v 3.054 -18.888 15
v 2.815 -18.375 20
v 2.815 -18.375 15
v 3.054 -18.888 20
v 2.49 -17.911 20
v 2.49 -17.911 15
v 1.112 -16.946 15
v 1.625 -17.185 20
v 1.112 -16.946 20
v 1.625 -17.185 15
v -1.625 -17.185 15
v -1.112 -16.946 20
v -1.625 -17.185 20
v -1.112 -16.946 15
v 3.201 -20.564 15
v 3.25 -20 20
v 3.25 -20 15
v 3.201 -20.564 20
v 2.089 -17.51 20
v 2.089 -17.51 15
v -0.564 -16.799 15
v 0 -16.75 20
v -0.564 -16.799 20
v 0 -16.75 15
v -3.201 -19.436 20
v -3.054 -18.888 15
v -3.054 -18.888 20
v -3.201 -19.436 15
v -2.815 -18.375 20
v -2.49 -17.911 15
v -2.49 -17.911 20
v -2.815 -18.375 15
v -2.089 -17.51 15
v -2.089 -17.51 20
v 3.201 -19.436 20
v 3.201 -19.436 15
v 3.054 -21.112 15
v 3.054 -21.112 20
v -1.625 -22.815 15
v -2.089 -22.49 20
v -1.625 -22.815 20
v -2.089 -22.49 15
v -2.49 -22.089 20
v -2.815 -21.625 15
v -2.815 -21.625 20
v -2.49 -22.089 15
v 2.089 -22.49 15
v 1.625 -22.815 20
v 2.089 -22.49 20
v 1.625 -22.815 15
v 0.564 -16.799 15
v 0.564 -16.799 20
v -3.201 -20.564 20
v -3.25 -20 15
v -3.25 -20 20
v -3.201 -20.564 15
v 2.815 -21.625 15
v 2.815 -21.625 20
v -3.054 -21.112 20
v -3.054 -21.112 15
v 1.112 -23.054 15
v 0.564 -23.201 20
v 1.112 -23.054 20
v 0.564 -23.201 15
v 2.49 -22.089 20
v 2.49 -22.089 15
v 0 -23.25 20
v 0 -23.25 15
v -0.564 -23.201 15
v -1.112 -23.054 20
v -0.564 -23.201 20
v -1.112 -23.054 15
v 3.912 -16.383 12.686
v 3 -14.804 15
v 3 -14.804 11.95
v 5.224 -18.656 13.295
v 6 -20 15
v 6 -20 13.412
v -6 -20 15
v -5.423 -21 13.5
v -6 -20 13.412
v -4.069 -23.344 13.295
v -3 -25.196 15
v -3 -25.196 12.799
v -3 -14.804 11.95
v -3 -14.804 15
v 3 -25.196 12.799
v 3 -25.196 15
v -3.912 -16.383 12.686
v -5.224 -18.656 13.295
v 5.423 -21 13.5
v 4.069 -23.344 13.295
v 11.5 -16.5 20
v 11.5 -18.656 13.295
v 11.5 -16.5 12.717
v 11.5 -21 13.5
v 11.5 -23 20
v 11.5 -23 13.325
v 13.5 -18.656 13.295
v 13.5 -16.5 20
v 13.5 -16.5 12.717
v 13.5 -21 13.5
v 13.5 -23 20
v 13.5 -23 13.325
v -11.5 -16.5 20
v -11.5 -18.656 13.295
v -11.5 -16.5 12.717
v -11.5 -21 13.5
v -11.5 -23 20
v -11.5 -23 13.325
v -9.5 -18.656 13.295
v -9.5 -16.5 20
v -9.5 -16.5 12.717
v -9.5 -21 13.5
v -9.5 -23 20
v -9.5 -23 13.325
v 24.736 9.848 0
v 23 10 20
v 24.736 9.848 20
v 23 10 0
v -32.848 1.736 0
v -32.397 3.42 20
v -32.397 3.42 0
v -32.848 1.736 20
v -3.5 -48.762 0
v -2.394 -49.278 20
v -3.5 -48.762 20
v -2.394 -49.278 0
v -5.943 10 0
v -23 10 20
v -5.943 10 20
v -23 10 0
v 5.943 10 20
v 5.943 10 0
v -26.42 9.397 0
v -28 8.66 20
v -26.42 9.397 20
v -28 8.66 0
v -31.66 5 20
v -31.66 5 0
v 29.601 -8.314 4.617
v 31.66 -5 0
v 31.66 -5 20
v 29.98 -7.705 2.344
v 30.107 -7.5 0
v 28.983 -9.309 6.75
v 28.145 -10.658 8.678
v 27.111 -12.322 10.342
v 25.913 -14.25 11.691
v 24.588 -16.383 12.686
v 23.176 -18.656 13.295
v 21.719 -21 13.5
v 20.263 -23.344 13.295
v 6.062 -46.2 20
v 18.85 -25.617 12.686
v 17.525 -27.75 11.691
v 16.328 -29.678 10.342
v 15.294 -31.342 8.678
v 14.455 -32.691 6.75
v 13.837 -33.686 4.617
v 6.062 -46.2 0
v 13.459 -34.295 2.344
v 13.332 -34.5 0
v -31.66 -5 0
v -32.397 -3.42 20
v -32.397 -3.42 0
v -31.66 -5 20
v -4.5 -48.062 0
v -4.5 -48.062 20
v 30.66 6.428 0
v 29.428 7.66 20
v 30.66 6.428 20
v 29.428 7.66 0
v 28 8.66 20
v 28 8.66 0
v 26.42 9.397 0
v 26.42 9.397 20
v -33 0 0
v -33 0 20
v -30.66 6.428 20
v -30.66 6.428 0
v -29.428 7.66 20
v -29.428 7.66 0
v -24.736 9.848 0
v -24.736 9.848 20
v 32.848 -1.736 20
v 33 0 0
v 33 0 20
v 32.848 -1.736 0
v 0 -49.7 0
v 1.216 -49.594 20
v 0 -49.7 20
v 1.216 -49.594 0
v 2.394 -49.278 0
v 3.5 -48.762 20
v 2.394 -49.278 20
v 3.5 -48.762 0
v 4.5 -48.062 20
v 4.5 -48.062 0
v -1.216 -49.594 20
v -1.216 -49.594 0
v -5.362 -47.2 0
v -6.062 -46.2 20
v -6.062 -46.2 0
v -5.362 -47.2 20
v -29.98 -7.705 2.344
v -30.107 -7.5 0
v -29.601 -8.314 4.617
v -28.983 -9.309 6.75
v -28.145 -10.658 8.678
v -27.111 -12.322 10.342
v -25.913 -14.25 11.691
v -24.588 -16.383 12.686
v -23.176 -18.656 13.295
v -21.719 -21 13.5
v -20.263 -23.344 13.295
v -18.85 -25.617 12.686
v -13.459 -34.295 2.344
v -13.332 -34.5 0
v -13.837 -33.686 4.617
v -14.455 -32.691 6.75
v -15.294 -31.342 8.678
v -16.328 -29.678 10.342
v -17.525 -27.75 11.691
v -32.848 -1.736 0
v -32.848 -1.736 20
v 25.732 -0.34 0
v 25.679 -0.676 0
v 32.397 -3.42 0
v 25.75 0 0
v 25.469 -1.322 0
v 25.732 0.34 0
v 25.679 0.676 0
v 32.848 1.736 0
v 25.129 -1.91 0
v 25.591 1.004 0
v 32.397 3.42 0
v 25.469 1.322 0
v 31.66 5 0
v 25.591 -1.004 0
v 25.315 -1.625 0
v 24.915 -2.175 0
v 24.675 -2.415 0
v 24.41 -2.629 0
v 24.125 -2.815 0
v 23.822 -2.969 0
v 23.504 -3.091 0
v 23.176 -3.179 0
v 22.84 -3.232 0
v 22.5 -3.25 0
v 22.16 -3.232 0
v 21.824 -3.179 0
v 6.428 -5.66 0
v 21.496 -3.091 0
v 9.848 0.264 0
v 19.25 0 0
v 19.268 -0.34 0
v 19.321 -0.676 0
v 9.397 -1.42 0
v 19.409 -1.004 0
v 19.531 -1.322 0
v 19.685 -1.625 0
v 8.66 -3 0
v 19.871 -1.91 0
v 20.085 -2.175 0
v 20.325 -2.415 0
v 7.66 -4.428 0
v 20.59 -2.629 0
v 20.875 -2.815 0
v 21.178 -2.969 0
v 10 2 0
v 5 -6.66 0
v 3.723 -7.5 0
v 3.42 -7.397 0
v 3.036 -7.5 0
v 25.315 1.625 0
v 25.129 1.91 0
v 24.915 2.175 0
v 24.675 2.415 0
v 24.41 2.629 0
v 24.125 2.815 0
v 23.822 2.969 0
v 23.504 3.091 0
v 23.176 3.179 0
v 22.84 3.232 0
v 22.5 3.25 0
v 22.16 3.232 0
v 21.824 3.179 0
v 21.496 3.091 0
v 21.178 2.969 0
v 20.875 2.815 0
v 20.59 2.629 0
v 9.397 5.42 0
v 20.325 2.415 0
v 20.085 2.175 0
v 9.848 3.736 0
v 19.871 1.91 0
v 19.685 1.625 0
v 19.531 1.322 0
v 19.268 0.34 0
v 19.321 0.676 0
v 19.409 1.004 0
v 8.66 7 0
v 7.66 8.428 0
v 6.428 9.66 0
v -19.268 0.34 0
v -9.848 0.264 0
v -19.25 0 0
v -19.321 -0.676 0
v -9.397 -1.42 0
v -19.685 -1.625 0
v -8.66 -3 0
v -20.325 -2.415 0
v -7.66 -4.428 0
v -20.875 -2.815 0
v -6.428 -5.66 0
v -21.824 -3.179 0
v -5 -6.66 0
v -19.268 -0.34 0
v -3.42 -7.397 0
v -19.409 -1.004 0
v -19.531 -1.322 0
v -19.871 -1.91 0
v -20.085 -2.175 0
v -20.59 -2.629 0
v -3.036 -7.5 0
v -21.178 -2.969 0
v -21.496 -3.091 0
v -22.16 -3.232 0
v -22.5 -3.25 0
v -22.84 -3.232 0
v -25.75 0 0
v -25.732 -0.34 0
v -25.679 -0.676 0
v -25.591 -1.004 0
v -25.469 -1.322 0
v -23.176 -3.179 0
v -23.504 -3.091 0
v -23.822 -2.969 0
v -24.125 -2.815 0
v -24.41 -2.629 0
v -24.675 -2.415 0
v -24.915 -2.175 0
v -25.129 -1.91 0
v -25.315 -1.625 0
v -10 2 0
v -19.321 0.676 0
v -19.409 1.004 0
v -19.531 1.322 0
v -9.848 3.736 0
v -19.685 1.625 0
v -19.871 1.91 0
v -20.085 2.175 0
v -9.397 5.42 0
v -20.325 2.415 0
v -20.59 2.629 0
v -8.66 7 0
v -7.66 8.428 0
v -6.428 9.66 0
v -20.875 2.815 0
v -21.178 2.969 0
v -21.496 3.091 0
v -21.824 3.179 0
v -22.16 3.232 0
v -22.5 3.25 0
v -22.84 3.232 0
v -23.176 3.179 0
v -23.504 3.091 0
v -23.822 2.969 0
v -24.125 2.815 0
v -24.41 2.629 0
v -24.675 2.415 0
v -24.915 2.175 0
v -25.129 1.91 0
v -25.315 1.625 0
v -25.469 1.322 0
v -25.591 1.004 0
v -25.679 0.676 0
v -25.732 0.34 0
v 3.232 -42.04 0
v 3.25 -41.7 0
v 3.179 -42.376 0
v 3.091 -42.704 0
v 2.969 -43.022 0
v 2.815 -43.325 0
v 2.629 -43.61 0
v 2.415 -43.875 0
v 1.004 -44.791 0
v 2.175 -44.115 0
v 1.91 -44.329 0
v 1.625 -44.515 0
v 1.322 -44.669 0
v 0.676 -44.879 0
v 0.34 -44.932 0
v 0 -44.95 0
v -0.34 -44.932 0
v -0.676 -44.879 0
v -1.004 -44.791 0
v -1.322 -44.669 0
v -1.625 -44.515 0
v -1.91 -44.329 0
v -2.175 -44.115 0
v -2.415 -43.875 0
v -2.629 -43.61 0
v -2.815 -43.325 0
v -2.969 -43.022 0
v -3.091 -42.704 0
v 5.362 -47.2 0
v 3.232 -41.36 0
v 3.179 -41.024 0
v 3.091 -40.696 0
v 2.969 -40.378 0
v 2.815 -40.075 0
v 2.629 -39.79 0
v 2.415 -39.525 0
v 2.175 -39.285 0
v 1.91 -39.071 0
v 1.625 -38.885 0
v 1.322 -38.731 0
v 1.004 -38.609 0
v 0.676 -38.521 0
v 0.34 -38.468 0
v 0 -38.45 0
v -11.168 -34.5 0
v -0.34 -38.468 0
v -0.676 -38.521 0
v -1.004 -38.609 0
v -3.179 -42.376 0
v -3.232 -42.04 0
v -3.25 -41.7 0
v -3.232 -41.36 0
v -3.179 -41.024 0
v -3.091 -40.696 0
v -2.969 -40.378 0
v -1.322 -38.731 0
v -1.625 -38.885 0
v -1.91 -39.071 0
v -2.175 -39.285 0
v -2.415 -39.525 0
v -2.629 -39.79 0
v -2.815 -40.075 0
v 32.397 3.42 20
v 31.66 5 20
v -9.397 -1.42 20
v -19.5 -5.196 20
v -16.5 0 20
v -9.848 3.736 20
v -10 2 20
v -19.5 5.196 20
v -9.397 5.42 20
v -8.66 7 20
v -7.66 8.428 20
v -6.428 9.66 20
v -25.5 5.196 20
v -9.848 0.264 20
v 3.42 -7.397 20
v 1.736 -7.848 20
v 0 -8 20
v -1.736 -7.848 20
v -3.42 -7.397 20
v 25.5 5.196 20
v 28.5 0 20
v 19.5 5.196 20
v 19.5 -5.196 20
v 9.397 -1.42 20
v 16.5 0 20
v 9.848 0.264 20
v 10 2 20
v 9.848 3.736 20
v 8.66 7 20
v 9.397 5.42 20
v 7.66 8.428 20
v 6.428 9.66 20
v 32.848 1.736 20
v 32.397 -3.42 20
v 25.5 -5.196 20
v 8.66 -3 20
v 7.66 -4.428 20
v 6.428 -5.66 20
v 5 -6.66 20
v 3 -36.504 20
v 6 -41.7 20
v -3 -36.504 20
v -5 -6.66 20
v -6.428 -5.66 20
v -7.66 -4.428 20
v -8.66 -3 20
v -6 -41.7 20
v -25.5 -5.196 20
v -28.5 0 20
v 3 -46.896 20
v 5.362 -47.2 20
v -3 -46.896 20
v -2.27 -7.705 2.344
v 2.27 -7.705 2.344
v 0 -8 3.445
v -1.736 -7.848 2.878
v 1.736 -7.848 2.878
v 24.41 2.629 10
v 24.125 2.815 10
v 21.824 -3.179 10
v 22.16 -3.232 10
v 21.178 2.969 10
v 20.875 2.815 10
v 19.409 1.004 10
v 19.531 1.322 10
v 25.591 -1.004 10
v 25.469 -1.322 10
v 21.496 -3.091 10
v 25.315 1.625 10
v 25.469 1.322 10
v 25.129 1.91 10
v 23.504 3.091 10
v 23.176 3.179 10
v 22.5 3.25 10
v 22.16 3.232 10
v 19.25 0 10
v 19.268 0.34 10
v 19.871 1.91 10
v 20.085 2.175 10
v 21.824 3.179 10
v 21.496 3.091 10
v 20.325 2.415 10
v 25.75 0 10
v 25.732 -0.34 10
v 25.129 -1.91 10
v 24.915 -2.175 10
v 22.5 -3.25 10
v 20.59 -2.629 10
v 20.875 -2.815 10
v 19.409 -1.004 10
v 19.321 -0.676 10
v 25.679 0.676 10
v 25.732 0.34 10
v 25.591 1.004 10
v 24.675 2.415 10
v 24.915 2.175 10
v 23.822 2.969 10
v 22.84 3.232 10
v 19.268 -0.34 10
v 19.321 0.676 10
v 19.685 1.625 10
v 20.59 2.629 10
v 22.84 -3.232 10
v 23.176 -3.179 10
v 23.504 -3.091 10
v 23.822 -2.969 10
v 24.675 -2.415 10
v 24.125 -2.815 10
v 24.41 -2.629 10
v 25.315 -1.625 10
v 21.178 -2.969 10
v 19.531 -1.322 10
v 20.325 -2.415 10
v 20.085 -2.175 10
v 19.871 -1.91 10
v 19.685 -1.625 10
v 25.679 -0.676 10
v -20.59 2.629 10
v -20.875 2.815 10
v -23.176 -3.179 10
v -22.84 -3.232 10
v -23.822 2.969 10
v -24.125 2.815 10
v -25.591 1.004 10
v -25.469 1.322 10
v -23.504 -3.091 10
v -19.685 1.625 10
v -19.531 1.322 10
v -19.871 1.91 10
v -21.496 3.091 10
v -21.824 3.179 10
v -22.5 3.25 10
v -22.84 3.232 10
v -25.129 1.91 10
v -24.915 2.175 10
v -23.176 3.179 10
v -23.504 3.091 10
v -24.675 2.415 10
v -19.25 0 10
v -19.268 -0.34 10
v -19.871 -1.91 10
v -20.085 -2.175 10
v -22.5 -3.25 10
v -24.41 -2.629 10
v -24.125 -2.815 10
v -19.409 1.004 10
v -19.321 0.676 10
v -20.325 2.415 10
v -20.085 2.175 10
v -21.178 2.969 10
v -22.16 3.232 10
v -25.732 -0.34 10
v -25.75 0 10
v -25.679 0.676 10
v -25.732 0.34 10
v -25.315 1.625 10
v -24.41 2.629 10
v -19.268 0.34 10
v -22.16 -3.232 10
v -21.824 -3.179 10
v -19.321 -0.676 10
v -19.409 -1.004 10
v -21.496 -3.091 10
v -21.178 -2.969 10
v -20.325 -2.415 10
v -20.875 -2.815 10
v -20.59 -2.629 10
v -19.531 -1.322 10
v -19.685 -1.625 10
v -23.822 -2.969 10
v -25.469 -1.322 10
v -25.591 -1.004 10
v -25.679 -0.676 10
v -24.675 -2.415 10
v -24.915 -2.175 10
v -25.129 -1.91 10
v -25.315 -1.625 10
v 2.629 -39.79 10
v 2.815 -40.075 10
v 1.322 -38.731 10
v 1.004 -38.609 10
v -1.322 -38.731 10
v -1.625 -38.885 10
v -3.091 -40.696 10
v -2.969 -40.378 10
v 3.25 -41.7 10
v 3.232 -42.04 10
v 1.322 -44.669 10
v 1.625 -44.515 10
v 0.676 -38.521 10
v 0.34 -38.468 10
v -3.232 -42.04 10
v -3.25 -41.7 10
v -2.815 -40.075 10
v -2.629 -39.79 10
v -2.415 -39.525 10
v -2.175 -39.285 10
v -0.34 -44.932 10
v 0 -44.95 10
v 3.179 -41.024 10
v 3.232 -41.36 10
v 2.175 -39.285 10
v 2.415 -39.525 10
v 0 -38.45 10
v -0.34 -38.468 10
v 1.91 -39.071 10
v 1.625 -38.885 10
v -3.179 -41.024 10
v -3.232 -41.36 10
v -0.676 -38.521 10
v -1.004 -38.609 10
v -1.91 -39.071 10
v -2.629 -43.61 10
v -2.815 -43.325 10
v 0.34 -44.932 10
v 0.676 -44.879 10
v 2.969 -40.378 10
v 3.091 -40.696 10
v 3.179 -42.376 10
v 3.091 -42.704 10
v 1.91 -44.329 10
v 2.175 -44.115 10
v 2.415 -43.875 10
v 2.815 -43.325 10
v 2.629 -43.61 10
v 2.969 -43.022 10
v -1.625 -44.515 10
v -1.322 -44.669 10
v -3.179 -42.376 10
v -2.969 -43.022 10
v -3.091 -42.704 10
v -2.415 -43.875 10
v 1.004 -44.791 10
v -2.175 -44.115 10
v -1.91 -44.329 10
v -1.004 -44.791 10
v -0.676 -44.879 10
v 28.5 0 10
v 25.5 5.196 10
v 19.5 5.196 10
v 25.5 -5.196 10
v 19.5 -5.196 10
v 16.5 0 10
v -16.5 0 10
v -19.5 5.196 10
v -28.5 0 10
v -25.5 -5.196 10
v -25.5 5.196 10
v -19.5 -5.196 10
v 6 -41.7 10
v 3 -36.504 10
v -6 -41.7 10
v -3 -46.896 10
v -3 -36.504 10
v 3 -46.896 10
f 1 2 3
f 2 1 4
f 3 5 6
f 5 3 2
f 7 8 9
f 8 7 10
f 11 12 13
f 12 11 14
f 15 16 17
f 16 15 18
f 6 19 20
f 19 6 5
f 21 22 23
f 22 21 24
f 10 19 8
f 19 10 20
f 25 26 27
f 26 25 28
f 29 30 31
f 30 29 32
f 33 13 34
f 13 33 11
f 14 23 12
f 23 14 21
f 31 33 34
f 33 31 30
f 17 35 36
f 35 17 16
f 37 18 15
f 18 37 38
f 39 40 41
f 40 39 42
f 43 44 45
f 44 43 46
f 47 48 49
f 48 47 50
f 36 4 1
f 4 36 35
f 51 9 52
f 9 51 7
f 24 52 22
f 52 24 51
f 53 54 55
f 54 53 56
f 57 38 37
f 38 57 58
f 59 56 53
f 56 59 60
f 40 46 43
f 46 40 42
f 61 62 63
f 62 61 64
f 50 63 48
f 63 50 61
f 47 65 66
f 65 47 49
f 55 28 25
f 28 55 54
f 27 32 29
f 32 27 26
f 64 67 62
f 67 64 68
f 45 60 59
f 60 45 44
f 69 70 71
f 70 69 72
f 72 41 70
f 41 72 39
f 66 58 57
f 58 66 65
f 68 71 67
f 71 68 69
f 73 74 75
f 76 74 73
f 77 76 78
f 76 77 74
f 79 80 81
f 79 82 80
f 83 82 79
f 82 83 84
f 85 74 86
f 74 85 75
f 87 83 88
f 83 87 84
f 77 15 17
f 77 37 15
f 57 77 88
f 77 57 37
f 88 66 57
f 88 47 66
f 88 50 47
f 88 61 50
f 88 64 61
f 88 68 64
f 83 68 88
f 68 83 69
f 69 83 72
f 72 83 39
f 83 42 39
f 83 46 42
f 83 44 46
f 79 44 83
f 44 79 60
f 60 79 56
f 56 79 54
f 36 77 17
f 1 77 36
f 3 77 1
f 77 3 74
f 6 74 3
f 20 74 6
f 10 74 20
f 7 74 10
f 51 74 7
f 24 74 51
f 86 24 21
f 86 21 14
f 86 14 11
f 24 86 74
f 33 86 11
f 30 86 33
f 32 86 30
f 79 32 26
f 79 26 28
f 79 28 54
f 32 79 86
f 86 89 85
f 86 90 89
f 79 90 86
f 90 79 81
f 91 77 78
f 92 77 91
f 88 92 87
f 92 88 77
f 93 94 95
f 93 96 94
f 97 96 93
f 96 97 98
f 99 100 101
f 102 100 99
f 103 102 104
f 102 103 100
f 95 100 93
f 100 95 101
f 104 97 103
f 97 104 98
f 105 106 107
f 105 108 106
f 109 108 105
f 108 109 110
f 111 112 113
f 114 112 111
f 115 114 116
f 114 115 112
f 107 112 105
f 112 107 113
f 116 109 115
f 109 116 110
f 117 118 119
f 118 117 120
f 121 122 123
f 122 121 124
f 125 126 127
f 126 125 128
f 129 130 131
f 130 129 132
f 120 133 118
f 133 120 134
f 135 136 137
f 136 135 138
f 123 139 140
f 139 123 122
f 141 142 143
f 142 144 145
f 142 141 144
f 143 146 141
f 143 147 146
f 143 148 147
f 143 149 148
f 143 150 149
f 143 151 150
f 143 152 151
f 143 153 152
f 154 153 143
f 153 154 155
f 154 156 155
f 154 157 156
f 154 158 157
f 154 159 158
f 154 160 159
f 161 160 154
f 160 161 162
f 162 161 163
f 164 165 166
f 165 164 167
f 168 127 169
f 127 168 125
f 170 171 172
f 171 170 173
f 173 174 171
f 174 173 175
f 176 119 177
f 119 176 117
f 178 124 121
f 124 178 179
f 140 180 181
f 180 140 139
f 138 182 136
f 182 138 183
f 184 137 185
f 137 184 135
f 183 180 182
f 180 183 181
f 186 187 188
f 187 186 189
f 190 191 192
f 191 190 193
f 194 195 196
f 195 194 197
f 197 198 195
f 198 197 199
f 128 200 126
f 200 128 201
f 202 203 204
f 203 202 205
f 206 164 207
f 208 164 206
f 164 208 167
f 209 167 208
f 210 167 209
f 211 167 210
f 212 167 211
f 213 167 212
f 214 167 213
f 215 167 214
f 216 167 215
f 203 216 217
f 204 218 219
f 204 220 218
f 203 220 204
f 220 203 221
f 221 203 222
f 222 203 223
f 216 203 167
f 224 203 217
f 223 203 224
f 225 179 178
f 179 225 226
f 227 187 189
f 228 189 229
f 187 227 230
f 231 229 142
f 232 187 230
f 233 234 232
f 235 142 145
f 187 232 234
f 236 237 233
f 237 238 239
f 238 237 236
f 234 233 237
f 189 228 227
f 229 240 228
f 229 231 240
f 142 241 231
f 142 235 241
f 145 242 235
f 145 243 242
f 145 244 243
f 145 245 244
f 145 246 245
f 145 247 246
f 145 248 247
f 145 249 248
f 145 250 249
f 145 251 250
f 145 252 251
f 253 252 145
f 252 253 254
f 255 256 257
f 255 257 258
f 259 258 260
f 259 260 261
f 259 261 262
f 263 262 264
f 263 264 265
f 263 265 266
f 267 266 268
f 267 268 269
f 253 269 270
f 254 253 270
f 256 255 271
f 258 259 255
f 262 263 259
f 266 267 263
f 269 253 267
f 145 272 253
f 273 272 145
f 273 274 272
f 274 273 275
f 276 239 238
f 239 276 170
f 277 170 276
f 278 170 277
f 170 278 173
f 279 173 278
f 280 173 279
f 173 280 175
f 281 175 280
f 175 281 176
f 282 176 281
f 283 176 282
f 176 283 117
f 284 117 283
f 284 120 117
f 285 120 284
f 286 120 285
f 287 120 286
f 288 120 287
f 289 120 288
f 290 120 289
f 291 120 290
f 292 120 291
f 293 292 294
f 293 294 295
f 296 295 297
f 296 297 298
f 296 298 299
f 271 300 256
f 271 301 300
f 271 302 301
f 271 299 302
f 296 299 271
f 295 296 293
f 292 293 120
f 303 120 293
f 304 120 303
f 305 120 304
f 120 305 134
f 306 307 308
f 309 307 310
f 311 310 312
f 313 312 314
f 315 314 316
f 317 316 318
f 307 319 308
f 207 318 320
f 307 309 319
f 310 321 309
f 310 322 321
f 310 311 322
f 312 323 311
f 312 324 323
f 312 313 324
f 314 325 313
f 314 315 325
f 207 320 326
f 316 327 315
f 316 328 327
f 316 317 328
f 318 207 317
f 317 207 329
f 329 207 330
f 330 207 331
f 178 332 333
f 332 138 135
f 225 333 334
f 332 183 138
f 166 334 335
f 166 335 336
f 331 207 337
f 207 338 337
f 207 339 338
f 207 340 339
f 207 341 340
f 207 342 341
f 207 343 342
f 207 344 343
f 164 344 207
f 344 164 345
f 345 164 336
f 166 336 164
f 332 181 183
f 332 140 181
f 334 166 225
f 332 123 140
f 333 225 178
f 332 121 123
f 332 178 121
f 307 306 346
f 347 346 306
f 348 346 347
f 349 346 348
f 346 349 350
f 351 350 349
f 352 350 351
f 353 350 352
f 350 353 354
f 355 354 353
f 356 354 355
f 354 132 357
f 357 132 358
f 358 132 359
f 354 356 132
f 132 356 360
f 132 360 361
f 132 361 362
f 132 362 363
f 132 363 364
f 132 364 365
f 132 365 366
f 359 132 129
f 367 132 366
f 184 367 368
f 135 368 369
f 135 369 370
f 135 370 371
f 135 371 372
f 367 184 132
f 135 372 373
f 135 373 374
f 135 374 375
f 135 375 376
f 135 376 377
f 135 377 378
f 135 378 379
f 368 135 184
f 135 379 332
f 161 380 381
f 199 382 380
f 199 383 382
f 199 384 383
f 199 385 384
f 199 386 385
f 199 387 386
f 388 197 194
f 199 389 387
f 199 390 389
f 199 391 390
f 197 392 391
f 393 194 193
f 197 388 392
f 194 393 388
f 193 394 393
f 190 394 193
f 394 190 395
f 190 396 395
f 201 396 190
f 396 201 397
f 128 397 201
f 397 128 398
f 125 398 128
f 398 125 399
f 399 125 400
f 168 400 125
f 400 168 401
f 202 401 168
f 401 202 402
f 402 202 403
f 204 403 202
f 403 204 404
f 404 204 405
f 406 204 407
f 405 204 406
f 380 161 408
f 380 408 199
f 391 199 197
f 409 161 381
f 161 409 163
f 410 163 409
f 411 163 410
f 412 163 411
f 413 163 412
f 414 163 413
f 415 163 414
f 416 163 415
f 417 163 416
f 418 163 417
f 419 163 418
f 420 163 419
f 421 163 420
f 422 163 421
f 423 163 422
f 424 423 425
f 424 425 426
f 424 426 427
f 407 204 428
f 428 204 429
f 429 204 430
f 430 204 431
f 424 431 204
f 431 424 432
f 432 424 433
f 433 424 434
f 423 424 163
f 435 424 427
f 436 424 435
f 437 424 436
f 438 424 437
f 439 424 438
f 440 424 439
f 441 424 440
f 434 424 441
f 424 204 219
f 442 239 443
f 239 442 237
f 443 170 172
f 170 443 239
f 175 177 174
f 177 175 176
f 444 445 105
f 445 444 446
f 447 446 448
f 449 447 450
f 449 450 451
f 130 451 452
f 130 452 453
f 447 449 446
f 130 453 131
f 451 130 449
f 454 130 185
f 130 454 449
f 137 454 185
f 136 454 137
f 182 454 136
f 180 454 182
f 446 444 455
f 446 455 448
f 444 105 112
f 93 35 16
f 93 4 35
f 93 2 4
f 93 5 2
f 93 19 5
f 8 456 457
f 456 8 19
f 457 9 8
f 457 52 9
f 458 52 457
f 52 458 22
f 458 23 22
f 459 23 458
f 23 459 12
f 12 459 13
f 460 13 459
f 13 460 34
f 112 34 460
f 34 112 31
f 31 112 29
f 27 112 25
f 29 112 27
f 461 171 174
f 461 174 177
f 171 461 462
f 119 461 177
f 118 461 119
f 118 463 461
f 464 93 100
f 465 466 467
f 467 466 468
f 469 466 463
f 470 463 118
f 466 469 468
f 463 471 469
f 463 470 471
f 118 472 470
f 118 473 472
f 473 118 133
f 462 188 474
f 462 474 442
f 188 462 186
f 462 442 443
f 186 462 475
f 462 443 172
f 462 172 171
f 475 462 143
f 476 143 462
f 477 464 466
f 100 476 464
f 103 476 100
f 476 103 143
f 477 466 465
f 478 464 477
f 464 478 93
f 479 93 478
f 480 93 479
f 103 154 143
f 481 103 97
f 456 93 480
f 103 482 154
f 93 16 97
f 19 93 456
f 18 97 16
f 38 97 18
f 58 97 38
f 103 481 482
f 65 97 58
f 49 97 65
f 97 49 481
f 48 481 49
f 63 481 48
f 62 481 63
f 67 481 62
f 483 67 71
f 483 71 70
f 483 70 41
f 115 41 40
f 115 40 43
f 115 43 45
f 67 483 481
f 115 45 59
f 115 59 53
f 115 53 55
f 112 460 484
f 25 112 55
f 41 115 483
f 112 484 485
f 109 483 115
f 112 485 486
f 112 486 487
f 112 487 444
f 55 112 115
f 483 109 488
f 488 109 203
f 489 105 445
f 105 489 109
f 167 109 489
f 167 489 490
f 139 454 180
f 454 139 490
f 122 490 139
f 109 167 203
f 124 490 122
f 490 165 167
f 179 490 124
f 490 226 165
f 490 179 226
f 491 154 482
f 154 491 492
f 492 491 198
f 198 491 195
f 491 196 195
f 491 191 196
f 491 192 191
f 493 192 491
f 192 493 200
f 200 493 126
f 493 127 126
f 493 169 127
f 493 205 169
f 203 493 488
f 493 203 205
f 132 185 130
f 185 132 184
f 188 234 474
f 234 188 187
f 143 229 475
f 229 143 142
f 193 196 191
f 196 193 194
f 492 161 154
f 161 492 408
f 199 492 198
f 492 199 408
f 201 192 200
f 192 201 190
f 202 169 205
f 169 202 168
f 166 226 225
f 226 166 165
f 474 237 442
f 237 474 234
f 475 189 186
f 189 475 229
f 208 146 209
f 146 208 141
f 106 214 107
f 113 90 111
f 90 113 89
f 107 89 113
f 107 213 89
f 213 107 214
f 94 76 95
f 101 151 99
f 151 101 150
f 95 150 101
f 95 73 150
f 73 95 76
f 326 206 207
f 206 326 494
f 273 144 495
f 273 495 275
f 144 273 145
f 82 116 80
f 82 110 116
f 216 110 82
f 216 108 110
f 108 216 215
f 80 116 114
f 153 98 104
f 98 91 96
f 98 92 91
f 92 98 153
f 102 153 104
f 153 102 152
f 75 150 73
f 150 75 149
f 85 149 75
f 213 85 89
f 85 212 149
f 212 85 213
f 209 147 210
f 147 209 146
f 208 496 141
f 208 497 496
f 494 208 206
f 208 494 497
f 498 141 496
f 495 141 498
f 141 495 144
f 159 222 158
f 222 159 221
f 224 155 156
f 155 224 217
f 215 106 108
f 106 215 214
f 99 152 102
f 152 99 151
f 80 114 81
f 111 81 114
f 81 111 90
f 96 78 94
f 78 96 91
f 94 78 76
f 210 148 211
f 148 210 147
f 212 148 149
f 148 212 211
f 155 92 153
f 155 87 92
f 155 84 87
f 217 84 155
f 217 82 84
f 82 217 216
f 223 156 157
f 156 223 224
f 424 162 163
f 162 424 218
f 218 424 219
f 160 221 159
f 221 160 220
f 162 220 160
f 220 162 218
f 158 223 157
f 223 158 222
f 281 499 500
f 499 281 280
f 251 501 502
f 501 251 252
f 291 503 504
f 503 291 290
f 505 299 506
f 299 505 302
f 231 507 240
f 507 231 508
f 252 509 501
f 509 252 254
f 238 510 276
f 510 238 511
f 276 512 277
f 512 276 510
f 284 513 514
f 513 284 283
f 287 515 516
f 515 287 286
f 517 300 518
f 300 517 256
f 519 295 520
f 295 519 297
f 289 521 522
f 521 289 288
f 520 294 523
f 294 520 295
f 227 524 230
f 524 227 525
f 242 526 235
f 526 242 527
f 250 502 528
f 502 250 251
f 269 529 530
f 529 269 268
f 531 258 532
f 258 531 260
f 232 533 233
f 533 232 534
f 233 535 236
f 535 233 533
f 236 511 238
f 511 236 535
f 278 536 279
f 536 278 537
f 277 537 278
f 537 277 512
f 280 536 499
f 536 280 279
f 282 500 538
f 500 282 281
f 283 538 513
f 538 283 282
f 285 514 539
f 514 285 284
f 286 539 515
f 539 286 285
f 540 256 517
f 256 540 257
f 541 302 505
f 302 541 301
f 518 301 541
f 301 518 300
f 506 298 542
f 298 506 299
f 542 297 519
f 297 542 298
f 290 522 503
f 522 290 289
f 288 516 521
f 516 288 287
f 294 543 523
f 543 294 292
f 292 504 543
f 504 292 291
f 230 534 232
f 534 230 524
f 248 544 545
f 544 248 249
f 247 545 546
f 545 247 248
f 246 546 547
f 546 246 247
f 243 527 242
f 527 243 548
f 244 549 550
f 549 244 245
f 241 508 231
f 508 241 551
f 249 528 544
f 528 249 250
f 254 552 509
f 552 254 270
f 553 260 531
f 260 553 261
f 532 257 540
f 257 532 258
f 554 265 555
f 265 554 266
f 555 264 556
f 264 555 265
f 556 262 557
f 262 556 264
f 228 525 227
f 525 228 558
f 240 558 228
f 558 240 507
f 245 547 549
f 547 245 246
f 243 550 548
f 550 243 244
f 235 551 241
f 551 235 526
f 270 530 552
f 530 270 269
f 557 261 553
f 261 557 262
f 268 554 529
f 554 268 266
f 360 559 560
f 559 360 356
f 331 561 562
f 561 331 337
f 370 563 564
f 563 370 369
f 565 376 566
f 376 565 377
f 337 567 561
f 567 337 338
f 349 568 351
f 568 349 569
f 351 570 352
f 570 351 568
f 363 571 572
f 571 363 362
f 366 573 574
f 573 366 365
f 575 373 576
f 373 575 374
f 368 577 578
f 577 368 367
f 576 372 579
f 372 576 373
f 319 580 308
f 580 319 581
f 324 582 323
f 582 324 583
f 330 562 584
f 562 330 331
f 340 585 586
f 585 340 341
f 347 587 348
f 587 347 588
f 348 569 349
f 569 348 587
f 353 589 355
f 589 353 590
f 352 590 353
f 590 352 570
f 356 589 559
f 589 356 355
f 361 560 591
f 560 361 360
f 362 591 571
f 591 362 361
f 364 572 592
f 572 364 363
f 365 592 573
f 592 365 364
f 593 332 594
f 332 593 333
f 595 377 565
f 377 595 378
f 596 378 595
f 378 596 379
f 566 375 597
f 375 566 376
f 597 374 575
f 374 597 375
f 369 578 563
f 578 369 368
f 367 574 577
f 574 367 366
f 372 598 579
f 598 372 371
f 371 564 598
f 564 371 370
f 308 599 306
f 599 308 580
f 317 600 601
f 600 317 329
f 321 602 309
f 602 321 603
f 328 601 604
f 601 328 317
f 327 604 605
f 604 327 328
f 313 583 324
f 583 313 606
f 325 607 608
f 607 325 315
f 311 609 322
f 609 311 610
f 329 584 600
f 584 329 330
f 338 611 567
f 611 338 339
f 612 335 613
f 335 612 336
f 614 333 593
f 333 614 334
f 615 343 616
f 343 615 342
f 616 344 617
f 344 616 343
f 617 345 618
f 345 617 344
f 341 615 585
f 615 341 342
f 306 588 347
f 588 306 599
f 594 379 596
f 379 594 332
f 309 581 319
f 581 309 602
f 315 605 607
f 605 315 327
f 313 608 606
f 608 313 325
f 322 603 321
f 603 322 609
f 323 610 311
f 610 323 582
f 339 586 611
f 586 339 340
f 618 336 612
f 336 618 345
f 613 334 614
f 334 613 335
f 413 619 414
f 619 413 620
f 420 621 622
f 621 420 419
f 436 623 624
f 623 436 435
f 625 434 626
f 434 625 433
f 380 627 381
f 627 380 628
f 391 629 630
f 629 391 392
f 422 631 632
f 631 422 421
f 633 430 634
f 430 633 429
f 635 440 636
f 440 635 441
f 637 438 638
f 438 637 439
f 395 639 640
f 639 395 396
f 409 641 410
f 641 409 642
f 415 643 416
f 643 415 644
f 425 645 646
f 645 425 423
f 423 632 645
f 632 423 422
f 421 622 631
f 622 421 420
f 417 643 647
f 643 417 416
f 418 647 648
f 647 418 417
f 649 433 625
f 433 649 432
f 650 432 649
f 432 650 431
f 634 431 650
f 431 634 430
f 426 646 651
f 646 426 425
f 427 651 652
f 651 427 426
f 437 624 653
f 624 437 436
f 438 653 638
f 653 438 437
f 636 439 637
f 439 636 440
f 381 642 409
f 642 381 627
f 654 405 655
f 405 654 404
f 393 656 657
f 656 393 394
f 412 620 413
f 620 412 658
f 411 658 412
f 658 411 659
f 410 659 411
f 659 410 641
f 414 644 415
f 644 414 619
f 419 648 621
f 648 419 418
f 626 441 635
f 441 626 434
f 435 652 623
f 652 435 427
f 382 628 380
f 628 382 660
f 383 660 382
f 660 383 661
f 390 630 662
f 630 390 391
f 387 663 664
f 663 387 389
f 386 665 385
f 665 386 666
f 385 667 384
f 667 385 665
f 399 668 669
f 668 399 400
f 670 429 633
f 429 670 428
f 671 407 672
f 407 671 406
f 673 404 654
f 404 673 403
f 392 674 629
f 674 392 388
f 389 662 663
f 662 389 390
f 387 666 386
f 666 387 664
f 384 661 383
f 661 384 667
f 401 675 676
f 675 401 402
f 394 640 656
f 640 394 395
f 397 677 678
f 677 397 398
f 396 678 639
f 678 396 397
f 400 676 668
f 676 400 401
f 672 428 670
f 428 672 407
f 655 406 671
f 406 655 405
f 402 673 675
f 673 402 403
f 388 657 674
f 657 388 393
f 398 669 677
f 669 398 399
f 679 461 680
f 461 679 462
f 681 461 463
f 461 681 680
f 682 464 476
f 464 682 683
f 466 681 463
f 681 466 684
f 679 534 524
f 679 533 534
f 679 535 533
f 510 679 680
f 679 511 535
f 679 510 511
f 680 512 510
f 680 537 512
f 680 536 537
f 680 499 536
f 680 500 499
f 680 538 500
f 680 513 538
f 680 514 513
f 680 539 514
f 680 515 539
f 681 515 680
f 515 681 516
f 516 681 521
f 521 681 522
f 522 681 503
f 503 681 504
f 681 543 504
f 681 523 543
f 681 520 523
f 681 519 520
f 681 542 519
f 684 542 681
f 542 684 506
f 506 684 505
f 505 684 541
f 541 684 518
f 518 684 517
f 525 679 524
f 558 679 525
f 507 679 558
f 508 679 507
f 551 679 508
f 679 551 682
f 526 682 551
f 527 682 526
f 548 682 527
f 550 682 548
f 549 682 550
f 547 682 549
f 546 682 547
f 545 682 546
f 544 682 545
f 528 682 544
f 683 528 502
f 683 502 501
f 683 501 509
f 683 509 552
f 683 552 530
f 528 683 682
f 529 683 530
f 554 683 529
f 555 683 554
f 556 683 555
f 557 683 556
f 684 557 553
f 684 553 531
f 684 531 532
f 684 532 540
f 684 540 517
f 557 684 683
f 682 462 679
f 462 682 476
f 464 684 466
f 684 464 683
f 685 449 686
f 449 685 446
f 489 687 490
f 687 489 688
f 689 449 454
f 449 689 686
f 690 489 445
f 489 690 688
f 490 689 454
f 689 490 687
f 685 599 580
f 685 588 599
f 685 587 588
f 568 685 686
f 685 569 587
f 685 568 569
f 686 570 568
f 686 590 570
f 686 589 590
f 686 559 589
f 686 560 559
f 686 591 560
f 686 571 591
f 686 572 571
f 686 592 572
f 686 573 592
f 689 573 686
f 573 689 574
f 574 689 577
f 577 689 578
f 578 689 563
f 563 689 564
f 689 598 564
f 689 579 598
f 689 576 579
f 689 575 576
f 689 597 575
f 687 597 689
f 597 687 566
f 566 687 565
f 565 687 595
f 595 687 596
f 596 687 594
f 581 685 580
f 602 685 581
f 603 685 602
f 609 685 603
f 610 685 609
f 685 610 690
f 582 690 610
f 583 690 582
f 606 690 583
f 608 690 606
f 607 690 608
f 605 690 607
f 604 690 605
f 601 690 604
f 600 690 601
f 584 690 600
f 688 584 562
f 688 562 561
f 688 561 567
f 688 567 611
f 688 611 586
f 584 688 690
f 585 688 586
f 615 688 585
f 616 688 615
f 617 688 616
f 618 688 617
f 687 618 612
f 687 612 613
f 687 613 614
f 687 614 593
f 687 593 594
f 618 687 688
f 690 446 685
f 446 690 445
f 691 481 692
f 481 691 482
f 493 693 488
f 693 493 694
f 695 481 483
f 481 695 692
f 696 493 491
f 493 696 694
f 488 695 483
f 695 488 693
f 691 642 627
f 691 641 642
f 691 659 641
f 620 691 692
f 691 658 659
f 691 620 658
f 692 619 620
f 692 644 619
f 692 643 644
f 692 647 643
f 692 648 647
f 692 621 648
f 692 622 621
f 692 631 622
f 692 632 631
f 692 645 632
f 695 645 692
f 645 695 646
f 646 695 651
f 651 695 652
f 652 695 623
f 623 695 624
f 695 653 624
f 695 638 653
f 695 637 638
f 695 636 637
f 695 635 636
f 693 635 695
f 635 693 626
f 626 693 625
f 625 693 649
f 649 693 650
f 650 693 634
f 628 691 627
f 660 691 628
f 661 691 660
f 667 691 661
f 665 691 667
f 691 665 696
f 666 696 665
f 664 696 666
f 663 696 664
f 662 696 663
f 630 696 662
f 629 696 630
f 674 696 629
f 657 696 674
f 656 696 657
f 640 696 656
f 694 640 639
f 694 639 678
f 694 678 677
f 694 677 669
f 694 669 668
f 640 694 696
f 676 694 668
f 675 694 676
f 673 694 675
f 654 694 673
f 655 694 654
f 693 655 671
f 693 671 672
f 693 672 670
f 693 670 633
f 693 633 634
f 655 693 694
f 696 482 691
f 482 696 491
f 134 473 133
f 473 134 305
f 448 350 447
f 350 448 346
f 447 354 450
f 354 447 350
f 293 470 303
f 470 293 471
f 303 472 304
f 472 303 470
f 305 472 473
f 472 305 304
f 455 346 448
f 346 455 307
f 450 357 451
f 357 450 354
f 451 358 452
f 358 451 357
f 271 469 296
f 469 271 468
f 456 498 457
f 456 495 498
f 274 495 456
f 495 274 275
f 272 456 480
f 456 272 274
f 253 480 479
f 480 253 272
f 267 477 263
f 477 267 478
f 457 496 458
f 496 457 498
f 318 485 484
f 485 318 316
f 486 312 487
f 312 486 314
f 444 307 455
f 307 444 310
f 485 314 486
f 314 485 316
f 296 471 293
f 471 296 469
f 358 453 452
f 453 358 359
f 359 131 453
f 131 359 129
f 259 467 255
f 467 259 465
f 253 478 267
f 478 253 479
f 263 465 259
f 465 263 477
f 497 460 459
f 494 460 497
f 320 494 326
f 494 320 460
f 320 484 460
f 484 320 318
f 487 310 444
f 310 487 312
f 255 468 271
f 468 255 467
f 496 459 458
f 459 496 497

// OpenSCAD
MBOLT=[[3,5.5],[4,7],[5,8],[6.5,12,5]];
//--------Reference
// V Type by Shauki Bagdadi
// Rod Type by Shauki Bagdadi
// update for https://www.youmagine.com/designs/vixqr

// Delta Type by Miguel Sánchez 
// https://www.youmagine.com/designs/variation-for-a-delta-carriage

// Mauro Manco for wheels

//--------Parameters----------------------
M=3;       // use Bolt and nut M3=0 M4=1 M5=2 M6=3 
granty=1;  //type of granty 0=square10x10  1=rod  2=Delta support 3=gopro
Rrod=10;  // radius of rod want use for granty
Offset=0.7;  //increase if not example if set 0.5 move down hole of 0.5mm
belt=1;      // If we are using a belt
//----------------------------------------



difference(){
hull() {
translate([23,0,0])cylinder(h = 20, r=10, $fn=36);
translate([-23,0,0])cylinder(h = 20, r=10, $fn=36);
translate([0,-42-Offset,0])cylinder(h = 20, r=7, $fn=36);
}


rotate([0,90,0])translate([-0,-21,-45])cylinder(h = 80, r=13.5, $fn=36);


//-------Wheels holes
translate([22.5,0,0])cylinder(h = 30, r=MBOLT[M][0]/2, $fn=60);         //Hole
translate([-22.5,0,0])cylinder(h = 30, r=MBOLT[M][0]/2, $fn=60);        //Hole
translate([0,-41-Offset,0])cylinder(h = 30, r=MBOLT[M][0]/2, $fn=60); //Hole

translate([22.5,0,10])cylinder(h = 10, r=MBOLT[M][1]/2, $fn=6);         //Hexagon
translate([-22.5,0,10])cylinder(h = 10, r=MBOLT[M][1]/2, $fn=6);        //Hexagon
translate([0,-41-Offset,10])cylinder(h = 10, r=MBOLT[M][1]/2, $fn=6); //Hexagon
echo("Belt=", belt );
//-------Cord regulator
if (belt == 0){
   if (granty<2){
     translate([11.5,-11,0])cylinder(h = 30, r=MBOLT[M][0]/2, $fn=36);     //Hole
     translate([11.5,-11,0])cylinder(h = 15, r=MBOLT[M][1]/2, $fn=6);      //Hexagon
    translate([-11.5,-15,0])cylinder(h = 30, r=MBOLT[M][0]/2, $fn=36);    //Hole
    translate([-11.5,-15,0])cylinder(h = 15, r=MBOLT[M][1]/2, $fn=6);     //
   }
  }
if (belt == 0){
if (granty<2){
translate([11.5,-11,0])cylinder(h = 30, r=MBOLT[M][0]/2, $fn=36);     //Hole
translate([11.5,-11,0])cylinder(h = 15, r=MBOLT[M][1]/2, $fn=6);      //Hexagon

translate([-11.5,-15,0])cylinder(h = 30, r=MBOLT[M][0]/2, $fn=36);    //Hole
translate([-11.5,-15,0])cylinder(h = 15, r=MBOLT[M][1]/2, $fn=6);     //Hexagon
}
}

if (belt==1){
    translate([0,-20,0])cylinder(h = 30, r=MBOLT[M][0]/2, $fn=36);     //Hole
    translate([0,-20,0])cylinder(h = 15, r=MBOLT[M][1]/2, $fn=6);      //Hexagon
    translate([11.5,-23,0])cube([2,6.5,30]); 
    translate([-11.5,-23,0])cube([2,6.5,30]);   
}
//-------Granty type

if (granty ==0) // V Type by Shauki Bagdadi
                // update for https://www.youmagine.com/designs/vixqr
{
rotate([0,0,45])translate([2,2,0])cube([10,10,20]);
rotate([0,0,45])translate([3,-6,0])cube([MBOLT[M][1],5,20]);
mirror([1,0,0])rotate([0,0,45])translate([3,-6,0])cube([MBOLT[M][1],5,20]);
rotate([45,90,0])translate([-15,7.5,-15])cylinder(h = 30, r=MBOLT[M][0]/2, $fn=36);
mirror([1,0,0])rotate([45,90,0])translate([-15,7.5,-15])cylinder(h = 30, r=MBOLT[M][0]/2, $fn=36);
}

if (granty ==1) // Rod Type by Shauki Bagdadi
{
translate([0,2,0])cylinder(h = 30, r=Rrod, $fn=36);
}

if (granty ==2) // Delta Type by Miguel Sánchez 
                //https://www.youmagine.com/designs/variation-for-a-delta-carriage
{
for(x=[-8,8]) for(y=[-10,10]) translate([x,y,0])
translate([0,-20.5,0]) {
	cylinder(h = 30, r=MBOLT[0][0]/2, $fn=36); 
//	cylinder(h = 12, r=MBOLT[0][1]/2, $fn=6);     //Hexagon
	}
}

if (granty ==3) // Gopro support hole Mauro Manco
{
translate([0,-16,0])cylinder(h = 30, r=3.5, $fn=36);
}


}
